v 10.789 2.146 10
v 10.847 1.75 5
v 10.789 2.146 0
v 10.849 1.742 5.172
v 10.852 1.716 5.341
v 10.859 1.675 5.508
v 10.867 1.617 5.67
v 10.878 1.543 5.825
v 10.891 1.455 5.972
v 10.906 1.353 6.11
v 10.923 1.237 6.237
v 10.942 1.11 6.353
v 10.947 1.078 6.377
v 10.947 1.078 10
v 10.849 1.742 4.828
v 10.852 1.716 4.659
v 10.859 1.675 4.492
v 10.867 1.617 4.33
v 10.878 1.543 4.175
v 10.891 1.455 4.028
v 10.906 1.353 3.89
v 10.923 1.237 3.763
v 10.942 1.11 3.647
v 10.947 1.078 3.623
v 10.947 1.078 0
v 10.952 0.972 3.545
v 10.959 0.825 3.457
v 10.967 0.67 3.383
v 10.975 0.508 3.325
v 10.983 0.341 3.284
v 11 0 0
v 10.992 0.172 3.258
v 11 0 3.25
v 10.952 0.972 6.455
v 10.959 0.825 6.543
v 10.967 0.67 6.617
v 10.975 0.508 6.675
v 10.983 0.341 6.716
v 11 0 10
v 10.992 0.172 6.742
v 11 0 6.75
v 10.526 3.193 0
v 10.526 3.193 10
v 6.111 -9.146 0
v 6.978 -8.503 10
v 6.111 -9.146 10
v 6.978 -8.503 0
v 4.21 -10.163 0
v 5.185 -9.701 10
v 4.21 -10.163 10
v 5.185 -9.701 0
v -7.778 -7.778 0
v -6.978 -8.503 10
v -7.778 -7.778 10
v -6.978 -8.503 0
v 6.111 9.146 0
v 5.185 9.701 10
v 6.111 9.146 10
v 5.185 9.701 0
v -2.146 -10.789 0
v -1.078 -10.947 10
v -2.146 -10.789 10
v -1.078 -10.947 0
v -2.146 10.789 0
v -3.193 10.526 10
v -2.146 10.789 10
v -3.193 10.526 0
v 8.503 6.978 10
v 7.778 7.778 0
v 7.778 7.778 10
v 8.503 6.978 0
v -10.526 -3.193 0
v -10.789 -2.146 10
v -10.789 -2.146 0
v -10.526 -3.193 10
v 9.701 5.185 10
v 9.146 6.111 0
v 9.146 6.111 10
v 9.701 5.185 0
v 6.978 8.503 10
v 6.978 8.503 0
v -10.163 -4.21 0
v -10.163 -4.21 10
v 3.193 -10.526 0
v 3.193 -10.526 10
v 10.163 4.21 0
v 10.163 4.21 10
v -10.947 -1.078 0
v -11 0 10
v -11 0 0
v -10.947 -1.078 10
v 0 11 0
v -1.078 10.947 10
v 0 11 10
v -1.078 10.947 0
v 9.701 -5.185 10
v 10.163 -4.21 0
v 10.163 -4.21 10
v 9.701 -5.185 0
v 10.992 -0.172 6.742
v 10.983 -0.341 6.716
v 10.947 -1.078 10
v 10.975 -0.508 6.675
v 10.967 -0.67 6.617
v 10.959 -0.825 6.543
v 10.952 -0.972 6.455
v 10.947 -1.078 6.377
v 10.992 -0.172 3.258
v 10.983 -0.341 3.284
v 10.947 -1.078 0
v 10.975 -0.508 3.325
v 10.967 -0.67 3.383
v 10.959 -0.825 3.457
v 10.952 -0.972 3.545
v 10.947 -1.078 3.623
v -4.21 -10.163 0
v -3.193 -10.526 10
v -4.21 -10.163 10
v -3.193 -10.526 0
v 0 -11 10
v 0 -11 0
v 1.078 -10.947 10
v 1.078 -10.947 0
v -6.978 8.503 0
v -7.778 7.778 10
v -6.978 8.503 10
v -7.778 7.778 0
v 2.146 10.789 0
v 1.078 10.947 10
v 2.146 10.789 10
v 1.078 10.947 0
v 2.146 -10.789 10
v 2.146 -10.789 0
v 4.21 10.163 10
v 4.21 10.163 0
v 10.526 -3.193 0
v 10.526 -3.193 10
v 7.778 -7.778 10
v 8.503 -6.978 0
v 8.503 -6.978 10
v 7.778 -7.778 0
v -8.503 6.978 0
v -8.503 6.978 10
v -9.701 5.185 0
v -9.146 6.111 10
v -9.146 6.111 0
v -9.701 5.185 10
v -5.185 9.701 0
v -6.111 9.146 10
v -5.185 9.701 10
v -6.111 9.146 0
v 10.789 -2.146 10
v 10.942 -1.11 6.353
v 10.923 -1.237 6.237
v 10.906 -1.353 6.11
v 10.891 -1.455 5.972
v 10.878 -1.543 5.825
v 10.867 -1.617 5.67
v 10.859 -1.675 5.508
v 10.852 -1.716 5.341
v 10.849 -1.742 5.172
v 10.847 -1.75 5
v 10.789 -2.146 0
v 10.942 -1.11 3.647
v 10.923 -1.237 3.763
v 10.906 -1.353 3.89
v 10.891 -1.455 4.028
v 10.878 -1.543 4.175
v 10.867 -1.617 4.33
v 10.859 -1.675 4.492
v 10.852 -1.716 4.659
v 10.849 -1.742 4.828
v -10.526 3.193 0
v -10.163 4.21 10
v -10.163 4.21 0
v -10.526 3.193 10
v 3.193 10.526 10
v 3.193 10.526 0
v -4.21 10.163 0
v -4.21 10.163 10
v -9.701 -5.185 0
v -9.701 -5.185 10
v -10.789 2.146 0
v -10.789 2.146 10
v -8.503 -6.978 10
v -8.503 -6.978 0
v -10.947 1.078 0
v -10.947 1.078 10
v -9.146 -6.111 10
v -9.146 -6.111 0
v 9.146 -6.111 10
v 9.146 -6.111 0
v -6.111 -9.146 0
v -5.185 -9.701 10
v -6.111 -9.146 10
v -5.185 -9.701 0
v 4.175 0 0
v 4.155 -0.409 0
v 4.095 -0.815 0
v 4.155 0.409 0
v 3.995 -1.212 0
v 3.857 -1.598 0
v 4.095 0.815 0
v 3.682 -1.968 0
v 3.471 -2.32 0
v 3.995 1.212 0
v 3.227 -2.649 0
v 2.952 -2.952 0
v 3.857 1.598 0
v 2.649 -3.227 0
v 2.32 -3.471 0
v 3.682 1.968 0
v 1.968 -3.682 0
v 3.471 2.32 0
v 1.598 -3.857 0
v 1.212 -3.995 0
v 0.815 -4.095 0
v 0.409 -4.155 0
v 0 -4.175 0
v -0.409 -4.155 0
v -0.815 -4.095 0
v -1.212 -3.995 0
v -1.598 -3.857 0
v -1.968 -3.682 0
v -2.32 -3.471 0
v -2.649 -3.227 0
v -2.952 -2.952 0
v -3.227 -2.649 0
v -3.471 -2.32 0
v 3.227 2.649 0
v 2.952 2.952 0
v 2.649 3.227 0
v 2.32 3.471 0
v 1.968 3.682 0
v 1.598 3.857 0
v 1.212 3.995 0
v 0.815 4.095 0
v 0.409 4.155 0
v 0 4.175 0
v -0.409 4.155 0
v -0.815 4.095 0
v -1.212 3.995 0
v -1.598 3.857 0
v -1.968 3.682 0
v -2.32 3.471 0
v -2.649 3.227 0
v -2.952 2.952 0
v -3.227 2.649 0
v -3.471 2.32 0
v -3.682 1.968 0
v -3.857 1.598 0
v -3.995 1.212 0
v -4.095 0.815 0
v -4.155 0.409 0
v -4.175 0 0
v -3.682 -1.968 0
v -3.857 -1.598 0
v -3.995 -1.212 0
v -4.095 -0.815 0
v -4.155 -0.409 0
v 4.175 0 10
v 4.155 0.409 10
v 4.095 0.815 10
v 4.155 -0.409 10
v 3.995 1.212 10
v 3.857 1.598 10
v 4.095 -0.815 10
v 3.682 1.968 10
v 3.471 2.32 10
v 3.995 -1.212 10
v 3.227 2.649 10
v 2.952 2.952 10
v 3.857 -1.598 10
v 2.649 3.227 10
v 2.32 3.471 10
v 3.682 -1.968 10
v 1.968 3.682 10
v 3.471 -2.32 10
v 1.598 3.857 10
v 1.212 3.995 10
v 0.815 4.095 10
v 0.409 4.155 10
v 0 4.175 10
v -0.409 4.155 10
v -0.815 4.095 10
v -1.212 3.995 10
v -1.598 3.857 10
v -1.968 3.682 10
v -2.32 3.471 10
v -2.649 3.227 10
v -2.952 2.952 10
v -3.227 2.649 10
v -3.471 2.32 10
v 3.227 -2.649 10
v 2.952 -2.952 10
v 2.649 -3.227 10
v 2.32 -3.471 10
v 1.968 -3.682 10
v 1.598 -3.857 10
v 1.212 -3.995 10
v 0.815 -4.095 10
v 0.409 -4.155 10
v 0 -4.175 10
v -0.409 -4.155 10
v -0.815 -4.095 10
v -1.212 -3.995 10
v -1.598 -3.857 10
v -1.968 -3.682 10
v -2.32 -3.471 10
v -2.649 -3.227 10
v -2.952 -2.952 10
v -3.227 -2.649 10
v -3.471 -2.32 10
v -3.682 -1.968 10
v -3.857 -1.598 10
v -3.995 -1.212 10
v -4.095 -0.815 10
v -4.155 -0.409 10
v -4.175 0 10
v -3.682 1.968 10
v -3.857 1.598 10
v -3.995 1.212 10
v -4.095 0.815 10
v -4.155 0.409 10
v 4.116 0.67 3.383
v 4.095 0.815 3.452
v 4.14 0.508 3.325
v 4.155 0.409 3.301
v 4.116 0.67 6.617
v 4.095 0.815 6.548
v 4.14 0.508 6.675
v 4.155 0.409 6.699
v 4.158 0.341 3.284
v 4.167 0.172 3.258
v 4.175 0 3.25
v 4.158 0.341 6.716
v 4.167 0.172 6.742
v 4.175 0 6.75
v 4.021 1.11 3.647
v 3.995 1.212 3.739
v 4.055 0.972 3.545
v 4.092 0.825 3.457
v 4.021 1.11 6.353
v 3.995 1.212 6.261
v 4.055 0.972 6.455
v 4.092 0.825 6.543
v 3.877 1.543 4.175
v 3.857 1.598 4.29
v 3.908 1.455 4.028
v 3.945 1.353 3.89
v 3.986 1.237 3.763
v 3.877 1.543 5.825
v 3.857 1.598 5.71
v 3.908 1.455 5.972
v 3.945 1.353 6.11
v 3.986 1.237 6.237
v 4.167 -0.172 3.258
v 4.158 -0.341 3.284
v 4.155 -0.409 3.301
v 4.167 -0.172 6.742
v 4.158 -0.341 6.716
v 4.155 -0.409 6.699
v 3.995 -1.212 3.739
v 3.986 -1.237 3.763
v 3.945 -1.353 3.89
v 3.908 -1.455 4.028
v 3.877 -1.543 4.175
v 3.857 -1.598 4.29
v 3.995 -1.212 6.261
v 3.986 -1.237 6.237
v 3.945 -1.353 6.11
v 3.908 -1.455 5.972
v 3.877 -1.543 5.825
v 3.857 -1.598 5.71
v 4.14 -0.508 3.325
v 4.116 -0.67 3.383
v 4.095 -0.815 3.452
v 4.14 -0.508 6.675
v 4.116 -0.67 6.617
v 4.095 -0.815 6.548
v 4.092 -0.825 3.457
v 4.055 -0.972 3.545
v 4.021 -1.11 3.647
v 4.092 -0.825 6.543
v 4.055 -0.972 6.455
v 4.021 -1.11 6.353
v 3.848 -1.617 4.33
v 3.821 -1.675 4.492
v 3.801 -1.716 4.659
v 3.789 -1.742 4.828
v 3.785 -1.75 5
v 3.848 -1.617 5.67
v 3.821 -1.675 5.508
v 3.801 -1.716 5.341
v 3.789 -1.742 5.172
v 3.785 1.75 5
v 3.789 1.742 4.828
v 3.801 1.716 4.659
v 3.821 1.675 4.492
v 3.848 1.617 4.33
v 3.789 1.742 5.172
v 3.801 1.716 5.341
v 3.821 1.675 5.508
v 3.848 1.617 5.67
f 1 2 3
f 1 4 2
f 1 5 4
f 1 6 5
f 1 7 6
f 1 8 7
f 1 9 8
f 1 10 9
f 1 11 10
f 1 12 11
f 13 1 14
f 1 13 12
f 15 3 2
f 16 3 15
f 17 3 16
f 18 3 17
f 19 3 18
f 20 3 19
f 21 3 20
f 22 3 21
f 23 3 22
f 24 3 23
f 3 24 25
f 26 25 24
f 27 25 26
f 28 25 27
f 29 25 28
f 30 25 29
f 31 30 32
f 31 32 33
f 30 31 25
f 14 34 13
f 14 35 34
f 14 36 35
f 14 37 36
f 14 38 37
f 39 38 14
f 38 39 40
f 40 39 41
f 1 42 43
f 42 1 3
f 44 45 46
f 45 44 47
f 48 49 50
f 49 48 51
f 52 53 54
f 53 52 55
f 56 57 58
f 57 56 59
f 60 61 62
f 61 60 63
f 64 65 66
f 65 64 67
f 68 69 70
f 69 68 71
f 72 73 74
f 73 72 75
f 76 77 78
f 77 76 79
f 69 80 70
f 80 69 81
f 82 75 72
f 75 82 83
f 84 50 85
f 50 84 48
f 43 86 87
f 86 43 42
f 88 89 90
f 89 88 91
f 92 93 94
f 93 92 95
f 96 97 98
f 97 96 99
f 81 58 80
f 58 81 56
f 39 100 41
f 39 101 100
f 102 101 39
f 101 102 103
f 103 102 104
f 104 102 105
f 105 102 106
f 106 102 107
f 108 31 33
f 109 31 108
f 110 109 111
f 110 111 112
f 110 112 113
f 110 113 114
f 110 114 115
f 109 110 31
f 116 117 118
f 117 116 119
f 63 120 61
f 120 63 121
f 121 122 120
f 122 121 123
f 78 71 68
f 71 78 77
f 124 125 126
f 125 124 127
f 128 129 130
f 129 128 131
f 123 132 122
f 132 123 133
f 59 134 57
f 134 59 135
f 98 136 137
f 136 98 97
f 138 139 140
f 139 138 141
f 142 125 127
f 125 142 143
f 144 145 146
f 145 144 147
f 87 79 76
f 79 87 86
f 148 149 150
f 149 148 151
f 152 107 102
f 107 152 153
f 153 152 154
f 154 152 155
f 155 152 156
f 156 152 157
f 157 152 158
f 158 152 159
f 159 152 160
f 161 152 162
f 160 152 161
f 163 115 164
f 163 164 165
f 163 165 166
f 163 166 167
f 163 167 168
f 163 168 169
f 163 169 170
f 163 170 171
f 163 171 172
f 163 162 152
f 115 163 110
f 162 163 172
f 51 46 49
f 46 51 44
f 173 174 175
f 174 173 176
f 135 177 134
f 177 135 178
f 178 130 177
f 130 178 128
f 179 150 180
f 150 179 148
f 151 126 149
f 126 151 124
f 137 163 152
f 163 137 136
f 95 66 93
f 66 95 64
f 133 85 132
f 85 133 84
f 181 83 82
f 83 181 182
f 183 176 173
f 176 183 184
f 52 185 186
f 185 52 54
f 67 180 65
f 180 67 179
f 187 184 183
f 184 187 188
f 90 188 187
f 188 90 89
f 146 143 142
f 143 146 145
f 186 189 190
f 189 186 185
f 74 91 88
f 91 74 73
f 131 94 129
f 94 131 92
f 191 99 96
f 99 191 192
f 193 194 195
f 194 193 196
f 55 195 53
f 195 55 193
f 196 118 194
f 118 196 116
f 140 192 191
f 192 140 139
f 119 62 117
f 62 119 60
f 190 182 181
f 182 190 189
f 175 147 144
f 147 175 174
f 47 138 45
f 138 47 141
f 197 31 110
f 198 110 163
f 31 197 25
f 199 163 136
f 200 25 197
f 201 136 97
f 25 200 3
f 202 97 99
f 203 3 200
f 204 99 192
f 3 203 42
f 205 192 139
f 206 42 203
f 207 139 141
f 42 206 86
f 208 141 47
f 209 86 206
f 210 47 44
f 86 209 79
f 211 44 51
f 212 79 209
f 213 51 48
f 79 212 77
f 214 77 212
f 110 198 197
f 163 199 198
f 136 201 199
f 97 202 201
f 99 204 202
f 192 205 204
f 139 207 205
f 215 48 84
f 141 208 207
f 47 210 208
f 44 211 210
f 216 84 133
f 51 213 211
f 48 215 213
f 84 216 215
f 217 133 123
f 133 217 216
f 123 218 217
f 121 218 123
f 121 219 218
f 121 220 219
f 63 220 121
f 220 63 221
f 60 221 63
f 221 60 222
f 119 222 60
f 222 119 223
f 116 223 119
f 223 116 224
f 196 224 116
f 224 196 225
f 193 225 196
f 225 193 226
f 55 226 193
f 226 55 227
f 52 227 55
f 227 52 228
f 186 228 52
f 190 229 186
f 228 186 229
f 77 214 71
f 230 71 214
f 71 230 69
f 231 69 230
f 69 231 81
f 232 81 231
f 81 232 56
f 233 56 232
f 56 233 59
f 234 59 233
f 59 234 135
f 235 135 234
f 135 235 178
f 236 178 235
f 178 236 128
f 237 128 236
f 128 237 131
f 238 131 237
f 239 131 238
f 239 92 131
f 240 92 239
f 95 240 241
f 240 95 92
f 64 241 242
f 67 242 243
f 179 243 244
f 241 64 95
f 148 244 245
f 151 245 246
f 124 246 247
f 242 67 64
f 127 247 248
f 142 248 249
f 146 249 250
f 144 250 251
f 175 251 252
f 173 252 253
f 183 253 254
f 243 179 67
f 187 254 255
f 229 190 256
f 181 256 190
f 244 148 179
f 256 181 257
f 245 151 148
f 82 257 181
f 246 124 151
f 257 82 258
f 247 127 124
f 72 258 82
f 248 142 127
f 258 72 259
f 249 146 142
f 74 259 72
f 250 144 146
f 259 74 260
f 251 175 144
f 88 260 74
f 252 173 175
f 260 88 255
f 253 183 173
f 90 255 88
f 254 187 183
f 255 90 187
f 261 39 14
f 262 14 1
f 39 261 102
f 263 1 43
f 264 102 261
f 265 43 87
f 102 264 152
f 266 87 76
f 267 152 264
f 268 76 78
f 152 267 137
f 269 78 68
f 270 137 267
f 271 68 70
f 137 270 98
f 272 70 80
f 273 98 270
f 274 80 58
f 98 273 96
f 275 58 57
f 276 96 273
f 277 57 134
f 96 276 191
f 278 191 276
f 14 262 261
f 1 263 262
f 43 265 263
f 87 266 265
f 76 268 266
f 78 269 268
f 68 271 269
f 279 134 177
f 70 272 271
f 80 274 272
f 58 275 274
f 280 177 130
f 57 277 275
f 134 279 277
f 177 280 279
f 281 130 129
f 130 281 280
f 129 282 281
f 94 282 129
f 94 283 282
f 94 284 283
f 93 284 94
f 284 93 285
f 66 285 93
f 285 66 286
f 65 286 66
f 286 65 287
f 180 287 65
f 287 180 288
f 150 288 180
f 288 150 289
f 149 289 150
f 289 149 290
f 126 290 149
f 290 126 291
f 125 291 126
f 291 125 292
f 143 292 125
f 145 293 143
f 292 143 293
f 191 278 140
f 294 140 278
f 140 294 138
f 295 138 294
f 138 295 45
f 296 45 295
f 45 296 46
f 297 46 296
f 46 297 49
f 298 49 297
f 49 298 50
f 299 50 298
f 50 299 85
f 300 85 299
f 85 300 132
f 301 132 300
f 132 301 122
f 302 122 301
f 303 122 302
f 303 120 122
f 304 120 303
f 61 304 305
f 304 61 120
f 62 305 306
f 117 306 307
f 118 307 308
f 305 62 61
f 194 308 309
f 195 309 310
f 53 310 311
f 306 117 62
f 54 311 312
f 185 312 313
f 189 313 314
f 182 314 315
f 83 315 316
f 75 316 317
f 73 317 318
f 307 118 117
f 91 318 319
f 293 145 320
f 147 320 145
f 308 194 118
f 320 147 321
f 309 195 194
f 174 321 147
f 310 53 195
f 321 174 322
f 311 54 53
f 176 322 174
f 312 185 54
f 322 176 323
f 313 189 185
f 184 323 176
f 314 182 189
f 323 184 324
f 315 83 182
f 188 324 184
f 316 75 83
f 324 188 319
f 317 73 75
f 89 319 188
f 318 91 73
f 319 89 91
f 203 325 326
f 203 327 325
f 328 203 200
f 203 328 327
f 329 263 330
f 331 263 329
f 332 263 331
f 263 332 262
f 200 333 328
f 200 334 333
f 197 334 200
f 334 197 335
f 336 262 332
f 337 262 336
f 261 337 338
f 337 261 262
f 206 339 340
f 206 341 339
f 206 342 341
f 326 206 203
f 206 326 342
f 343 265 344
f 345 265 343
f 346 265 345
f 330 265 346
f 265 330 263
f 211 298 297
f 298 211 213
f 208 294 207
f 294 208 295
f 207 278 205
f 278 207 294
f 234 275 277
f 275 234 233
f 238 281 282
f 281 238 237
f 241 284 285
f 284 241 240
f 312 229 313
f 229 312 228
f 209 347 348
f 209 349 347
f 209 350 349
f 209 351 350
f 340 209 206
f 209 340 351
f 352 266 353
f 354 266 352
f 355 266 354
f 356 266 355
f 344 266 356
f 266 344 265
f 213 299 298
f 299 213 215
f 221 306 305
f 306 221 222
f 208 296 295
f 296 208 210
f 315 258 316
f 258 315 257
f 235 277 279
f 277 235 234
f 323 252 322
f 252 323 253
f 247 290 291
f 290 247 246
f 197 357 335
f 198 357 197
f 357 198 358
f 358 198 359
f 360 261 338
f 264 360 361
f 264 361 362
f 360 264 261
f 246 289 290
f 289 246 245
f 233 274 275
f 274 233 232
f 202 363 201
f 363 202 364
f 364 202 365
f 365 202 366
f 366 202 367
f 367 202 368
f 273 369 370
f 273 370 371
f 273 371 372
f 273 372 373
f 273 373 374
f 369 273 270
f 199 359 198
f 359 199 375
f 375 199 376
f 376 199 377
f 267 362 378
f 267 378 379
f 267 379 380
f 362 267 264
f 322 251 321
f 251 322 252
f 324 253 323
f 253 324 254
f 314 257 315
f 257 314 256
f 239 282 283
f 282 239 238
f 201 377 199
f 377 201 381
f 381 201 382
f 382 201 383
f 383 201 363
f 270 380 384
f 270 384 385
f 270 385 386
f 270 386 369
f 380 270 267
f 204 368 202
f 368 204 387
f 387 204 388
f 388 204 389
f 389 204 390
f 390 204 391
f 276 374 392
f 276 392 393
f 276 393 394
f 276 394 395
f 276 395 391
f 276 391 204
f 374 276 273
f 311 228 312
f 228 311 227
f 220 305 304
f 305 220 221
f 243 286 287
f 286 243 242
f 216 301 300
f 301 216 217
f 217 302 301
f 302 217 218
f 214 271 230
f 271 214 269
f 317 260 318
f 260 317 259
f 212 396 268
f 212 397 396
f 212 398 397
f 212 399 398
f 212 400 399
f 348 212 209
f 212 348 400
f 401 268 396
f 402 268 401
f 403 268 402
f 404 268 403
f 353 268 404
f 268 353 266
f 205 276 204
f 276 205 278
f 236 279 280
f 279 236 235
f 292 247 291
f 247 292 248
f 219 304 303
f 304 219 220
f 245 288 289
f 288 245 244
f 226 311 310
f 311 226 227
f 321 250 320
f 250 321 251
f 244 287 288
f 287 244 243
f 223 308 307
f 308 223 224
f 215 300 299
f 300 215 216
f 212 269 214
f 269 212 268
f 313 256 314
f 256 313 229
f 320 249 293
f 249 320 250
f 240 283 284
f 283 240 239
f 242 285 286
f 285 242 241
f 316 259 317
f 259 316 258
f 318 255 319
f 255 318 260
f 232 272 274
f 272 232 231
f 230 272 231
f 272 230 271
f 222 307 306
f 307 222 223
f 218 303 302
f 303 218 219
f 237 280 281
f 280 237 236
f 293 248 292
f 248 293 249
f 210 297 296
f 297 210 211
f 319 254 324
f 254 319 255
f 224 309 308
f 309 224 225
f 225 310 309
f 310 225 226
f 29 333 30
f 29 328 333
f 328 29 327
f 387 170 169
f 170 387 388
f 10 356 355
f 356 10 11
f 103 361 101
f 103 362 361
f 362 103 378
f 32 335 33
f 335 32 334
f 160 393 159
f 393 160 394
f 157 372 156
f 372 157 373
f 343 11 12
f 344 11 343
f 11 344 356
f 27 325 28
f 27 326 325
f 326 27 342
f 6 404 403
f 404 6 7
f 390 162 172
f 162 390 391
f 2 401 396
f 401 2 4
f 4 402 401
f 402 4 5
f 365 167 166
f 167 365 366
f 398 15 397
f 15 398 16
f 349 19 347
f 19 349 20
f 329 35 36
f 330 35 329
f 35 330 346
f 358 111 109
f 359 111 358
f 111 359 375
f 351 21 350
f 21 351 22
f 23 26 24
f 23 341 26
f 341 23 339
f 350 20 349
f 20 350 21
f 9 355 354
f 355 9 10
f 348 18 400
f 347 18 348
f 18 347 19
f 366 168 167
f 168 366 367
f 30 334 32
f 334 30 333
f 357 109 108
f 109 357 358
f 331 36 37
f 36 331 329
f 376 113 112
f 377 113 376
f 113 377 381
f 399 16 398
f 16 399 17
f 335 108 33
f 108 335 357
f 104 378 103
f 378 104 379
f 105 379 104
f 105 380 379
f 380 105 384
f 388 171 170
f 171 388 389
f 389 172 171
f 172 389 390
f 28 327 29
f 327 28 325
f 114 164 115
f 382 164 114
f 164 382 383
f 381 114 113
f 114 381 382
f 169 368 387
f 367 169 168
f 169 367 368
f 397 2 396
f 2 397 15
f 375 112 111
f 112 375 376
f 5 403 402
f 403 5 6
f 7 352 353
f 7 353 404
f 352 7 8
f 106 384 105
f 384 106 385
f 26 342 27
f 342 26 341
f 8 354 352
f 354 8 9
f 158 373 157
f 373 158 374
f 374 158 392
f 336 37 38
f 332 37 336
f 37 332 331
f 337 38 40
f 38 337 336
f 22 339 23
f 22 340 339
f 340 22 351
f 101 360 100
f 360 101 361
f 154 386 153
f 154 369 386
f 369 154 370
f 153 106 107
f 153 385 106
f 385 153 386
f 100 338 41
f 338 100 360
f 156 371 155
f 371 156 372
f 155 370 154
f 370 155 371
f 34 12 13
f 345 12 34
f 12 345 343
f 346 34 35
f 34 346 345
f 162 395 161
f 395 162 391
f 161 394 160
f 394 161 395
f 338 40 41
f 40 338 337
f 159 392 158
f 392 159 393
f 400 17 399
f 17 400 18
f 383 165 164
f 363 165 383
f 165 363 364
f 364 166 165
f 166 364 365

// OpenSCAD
// Gen-D shaft collar — M3 set-screw style clamp for Ø8 shaft

od      = 22.0;
id      = 8.35;
h       = 10.0;
set_d   = 3.5;    // M3 clearance → heat-set insert preferred on OD
$fn = 64;

difference() {
    cylinder(d=od, h=h);
    translate([0, 0, -0.1])
        cylinder(d=id, h=h + 0.2);
    translate([0, 0, h/2])
        rotate([0, 90, 0])
            cylinder(d=set_d, h=od);
}
